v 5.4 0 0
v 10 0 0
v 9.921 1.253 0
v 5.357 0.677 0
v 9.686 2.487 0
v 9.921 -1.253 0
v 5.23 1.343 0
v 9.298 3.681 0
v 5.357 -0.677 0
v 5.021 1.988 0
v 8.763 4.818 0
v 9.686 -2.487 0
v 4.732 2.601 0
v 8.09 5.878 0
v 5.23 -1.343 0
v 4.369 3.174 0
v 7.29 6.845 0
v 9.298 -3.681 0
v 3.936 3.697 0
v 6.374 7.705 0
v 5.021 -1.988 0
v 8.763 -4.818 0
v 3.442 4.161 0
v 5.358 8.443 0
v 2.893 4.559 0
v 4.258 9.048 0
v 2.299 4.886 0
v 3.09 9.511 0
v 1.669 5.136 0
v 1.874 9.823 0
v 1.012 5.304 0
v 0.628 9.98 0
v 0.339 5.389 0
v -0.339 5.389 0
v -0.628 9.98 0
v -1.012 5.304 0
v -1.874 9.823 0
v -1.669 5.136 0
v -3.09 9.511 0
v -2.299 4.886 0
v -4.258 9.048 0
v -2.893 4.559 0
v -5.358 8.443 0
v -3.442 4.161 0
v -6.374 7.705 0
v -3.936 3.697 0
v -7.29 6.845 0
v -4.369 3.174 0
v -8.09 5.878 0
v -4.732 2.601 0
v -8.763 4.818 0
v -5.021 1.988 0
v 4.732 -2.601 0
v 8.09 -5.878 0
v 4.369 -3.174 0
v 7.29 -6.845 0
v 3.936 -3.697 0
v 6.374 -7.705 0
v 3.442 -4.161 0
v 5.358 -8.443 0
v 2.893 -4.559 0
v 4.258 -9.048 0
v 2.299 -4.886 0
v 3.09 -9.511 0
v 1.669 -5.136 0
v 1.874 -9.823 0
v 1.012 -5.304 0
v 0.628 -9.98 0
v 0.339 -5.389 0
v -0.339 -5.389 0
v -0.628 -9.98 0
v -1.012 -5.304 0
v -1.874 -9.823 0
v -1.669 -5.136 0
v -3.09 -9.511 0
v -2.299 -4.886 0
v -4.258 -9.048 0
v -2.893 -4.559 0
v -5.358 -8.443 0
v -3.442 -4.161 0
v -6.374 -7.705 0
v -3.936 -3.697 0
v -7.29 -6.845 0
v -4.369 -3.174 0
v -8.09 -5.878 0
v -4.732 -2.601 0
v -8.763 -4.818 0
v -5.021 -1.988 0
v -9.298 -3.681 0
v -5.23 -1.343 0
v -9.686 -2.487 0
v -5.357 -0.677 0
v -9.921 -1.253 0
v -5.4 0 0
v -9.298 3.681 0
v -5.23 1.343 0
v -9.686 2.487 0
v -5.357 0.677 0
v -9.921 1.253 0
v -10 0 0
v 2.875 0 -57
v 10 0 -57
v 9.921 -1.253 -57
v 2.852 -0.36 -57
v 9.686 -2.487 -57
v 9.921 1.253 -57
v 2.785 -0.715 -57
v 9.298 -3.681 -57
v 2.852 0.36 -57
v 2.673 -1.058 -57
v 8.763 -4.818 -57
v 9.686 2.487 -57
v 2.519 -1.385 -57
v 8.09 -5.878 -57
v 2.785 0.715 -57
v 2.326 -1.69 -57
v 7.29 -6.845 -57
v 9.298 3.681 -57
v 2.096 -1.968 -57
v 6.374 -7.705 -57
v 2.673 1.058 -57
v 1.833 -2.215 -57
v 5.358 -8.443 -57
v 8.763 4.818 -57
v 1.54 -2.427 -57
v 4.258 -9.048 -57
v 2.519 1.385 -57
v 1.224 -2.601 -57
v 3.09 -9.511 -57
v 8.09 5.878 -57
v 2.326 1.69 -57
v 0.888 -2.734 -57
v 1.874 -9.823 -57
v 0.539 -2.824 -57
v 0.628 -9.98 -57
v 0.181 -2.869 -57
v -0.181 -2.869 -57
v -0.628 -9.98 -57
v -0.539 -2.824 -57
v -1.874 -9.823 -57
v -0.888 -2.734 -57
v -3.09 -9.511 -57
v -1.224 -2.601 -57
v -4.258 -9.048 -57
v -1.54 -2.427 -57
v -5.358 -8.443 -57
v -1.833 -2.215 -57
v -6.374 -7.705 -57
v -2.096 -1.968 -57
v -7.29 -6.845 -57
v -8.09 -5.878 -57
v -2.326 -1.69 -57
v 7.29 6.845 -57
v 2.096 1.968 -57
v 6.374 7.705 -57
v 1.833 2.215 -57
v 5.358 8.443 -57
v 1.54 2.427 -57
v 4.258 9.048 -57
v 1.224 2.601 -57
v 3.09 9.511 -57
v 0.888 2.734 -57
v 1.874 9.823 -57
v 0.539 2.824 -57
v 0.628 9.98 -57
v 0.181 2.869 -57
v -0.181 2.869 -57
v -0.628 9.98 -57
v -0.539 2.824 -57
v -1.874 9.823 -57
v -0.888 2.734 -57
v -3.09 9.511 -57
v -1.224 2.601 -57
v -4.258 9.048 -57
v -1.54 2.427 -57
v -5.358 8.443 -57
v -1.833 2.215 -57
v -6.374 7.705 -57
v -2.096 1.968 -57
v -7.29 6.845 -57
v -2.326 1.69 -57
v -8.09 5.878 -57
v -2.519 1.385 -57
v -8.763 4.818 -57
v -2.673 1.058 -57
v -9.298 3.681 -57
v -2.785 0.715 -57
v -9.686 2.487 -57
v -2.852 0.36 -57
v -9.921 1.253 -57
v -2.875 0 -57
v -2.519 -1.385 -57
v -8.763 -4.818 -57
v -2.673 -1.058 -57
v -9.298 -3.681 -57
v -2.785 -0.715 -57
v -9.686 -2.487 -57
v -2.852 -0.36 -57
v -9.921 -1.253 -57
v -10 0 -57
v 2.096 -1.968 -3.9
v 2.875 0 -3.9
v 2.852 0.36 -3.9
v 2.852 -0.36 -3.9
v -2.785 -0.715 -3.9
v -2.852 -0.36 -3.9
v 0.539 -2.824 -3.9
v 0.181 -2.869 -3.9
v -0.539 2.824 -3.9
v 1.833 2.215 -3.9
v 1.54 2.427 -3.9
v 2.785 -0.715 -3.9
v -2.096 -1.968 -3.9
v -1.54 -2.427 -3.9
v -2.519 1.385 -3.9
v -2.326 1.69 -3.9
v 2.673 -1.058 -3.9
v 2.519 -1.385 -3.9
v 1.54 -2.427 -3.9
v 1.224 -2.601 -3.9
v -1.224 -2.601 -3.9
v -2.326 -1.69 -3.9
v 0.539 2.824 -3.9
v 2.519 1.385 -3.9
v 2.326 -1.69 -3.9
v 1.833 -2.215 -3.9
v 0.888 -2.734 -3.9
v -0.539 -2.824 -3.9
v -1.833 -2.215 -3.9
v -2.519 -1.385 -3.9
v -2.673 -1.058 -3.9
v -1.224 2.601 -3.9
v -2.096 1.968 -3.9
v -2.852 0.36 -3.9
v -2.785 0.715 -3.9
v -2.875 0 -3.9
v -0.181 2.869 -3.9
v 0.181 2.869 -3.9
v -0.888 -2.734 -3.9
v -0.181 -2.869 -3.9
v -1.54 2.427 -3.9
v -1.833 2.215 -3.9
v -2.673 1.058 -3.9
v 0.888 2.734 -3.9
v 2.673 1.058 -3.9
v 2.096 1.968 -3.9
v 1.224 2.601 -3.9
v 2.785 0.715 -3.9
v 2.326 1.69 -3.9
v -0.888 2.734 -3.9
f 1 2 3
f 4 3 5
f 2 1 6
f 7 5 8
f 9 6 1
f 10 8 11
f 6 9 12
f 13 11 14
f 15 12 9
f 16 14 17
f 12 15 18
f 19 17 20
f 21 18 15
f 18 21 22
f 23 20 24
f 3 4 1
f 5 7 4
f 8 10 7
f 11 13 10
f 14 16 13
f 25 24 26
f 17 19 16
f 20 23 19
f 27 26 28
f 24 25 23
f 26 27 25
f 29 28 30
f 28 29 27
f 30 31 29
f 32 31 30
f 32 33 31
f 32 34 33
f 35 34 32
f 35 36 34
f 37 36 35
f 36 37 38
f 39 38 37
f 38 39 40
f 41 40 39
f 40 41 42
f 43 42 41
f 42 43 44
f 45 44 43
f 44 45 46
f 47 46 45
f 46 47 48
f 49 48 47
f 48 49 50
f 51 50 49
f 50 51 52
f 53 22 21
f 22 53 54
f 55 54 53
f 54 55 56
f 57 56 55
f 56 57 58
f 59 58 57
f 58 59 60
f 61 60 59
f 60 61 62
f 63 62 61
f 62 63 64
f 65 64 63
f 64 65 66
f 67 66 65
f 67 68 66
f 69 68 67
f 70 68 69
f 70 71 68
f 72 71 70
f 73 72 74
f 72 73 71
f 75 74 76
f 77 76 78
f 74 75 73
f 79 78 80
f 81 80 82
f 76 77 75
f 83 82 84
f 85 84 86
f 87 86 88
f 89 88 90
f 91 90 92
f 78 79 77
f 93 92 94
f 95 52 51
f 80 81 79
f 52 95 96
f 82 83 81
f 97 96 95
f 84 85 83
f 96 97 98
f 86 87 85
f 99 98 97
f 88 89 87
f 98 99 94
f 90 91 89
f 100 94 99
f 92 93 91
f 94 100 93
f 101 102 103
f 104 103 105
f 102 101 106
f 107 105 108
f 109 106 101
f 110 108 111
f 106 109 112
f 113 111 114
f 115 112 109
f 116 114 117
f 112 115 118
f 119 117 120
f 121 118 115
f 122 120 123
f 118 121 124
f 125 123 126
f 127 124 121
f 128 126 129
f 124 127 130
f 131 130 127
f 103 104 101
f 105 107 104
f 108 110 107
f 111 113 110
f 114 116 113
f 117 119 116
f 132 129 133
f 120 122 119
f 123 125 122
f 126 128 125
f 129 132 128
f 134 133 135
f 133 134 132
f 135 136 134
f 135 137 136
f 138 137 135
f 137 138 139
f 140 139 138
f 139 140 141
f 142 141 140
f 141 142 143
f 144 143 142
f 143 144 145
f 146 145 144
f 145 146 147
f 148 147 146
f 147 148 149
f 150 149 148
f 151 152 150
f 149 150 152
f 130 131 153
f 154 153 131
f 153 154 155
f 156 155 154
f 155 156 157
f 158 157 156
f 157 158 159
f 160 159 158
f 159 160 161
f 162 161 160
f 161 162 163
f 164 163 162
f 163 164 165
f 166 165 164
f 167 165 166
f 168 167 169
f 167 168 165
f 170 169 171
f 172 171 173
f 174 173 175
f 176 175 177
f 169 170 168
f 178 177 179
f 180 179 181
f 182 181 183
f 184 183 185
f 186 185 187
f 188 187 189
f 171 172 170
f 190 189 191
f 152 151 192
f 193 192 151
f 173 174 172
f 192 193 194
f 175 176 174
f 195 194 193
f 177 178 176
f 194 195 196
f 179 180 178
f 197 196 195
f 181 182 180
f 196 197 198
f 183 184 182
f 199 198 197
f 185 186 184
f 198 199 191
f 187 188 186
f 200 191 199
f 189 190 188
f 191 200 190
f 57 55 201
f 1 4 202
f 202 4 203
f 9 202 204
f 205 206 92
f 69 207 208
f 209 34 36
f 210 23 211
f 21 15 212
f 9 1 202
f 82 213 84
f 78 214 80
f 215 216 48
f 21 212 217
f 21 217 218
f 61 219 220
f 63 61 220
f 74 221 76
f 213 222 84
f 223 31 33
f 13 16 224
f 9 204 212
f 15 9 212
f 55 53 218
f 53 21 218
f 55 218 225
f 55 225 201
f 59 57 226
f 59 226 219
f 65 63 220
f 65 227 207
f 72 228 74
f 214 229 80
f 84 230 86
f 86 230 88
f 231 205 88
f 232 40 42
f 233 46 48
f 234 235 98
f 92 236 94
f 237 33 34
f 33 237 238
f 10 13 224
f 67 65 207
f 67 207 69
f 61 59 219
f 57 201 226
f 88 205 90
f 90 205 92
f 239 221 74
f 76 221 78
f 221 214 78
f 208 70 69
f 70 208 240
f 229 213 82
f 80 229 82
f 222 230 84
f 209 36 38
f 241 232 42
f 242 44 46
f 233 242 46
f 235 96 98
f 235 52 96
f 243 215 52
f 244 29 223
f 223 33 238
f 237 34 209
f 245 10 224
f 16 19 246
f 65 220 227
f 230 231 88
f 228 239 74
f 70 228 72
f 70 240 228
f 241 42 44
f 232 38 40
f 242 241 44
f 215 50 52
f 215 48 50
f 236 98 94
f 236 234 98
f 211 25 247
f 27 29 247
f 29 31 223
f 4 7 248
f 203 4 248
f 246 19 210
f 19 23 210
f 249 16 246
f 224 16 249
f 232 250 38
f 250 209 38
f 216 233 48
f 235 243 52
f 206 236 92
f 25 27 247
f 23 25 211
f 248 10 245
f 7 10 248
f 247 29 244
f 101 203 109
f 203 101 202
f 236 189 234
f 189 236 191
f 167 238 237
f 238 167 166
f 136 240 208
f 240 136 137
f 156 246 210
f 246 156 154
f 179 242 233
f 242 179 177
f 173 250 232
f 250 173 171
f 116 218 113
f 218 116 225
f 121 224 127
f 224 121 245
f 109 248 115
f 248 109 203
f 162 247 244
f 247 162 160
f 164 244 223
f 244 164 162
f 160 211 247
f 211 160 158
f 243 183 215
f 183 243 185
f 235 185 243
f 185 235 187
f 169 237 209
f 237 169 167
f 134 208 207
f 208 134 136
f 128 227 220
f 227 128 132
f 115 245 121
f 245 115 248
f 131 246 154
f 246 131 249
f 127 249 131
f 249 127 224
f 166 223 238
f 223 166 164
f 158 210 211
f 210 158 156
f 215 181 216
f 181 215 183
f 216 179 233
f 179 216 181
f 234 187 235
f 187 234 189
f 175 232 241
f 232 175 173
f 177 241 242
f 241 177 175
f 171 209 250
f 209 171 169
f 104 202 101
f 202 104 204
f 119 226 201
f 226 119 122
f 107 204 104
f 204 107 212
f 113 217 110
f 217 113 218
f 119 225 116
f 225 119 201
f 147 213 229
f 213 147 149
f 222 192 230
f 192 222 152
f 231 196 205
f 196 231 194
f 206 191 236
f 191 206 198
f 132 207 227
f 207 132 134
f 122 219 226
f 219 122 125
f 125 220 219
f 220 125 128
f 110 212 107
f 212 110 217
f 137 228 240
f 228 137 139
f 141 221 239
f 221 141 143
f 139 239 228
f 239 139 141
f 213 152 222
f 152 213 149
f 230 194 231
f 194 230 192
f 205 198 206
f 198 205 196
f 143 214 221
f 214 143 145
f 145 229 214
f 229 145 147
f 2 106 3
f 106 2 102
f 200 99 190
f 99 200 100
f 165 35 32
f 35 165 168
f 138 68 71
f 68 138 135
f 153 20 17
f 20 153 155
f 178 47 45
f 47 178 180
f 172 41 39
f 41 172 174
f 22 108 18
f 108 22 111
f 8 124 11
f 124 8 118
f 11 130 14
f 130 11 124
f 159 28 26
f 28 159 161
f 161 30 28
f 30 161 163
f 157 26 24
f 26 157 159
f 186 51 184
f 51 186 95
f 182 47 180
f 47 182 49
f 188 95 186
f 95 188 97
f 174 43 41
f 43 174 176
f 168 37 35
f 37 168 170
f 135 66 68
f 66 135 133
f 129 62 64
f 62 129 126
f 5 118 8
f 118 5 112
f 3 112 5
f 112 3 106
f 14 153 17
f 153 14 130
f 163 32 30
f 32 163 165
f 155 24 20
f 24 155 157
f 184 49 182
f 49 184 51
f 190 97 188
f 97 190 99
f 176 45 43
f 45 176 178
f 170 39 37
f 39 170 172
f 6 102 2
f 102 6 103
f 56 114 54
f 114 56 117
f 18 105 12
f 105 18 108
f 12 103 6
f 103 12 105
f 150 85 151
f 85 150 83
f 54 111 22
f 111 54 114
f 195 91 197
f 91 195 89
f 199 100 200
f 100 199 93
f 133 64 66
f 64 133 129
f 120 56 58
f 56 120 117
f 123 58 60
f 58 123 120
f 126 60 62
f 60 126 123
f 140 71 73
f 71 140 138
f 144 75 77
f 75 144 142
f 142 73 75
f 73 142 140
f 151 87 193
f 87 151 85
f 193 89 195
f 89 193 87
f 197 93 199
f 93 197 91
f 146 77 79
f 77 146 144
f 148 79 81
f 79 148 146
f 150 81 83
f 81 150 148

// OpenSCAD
$fn = 50;


difference() {
	union() {
		translate(v = [0, 0, -57.0000000000]) {
			cylinder(h = 57, r = 10.0000000000);
		}
	}
	union() {
		translate(v = [0, 0, 0]) {
			rotate(a = [0, 0, 0]) {
				difference() {
					union() {
						#translate(v = [0, 0, -57.0000000000]) {
							cylinder(h = 57, r = 2.6000000000);
						}
						#translate(v = [0, 0, -3.9000000000]) {
							cylinder(h = 3.9000000000, r1 = 2.8750000000, r2 = 5.4000000000);
						}
						#translate(v = [0, 0, -57.0000000000]) {
							cylinder(h = 57, r = 2.8750000000);
						}
						#translate(v = [0, 0, -57.0000000000]) {
							cylinder(h = 57, r = 2.6000000000);
						}
					}
					union();
				}
			}
		}
	}
}
